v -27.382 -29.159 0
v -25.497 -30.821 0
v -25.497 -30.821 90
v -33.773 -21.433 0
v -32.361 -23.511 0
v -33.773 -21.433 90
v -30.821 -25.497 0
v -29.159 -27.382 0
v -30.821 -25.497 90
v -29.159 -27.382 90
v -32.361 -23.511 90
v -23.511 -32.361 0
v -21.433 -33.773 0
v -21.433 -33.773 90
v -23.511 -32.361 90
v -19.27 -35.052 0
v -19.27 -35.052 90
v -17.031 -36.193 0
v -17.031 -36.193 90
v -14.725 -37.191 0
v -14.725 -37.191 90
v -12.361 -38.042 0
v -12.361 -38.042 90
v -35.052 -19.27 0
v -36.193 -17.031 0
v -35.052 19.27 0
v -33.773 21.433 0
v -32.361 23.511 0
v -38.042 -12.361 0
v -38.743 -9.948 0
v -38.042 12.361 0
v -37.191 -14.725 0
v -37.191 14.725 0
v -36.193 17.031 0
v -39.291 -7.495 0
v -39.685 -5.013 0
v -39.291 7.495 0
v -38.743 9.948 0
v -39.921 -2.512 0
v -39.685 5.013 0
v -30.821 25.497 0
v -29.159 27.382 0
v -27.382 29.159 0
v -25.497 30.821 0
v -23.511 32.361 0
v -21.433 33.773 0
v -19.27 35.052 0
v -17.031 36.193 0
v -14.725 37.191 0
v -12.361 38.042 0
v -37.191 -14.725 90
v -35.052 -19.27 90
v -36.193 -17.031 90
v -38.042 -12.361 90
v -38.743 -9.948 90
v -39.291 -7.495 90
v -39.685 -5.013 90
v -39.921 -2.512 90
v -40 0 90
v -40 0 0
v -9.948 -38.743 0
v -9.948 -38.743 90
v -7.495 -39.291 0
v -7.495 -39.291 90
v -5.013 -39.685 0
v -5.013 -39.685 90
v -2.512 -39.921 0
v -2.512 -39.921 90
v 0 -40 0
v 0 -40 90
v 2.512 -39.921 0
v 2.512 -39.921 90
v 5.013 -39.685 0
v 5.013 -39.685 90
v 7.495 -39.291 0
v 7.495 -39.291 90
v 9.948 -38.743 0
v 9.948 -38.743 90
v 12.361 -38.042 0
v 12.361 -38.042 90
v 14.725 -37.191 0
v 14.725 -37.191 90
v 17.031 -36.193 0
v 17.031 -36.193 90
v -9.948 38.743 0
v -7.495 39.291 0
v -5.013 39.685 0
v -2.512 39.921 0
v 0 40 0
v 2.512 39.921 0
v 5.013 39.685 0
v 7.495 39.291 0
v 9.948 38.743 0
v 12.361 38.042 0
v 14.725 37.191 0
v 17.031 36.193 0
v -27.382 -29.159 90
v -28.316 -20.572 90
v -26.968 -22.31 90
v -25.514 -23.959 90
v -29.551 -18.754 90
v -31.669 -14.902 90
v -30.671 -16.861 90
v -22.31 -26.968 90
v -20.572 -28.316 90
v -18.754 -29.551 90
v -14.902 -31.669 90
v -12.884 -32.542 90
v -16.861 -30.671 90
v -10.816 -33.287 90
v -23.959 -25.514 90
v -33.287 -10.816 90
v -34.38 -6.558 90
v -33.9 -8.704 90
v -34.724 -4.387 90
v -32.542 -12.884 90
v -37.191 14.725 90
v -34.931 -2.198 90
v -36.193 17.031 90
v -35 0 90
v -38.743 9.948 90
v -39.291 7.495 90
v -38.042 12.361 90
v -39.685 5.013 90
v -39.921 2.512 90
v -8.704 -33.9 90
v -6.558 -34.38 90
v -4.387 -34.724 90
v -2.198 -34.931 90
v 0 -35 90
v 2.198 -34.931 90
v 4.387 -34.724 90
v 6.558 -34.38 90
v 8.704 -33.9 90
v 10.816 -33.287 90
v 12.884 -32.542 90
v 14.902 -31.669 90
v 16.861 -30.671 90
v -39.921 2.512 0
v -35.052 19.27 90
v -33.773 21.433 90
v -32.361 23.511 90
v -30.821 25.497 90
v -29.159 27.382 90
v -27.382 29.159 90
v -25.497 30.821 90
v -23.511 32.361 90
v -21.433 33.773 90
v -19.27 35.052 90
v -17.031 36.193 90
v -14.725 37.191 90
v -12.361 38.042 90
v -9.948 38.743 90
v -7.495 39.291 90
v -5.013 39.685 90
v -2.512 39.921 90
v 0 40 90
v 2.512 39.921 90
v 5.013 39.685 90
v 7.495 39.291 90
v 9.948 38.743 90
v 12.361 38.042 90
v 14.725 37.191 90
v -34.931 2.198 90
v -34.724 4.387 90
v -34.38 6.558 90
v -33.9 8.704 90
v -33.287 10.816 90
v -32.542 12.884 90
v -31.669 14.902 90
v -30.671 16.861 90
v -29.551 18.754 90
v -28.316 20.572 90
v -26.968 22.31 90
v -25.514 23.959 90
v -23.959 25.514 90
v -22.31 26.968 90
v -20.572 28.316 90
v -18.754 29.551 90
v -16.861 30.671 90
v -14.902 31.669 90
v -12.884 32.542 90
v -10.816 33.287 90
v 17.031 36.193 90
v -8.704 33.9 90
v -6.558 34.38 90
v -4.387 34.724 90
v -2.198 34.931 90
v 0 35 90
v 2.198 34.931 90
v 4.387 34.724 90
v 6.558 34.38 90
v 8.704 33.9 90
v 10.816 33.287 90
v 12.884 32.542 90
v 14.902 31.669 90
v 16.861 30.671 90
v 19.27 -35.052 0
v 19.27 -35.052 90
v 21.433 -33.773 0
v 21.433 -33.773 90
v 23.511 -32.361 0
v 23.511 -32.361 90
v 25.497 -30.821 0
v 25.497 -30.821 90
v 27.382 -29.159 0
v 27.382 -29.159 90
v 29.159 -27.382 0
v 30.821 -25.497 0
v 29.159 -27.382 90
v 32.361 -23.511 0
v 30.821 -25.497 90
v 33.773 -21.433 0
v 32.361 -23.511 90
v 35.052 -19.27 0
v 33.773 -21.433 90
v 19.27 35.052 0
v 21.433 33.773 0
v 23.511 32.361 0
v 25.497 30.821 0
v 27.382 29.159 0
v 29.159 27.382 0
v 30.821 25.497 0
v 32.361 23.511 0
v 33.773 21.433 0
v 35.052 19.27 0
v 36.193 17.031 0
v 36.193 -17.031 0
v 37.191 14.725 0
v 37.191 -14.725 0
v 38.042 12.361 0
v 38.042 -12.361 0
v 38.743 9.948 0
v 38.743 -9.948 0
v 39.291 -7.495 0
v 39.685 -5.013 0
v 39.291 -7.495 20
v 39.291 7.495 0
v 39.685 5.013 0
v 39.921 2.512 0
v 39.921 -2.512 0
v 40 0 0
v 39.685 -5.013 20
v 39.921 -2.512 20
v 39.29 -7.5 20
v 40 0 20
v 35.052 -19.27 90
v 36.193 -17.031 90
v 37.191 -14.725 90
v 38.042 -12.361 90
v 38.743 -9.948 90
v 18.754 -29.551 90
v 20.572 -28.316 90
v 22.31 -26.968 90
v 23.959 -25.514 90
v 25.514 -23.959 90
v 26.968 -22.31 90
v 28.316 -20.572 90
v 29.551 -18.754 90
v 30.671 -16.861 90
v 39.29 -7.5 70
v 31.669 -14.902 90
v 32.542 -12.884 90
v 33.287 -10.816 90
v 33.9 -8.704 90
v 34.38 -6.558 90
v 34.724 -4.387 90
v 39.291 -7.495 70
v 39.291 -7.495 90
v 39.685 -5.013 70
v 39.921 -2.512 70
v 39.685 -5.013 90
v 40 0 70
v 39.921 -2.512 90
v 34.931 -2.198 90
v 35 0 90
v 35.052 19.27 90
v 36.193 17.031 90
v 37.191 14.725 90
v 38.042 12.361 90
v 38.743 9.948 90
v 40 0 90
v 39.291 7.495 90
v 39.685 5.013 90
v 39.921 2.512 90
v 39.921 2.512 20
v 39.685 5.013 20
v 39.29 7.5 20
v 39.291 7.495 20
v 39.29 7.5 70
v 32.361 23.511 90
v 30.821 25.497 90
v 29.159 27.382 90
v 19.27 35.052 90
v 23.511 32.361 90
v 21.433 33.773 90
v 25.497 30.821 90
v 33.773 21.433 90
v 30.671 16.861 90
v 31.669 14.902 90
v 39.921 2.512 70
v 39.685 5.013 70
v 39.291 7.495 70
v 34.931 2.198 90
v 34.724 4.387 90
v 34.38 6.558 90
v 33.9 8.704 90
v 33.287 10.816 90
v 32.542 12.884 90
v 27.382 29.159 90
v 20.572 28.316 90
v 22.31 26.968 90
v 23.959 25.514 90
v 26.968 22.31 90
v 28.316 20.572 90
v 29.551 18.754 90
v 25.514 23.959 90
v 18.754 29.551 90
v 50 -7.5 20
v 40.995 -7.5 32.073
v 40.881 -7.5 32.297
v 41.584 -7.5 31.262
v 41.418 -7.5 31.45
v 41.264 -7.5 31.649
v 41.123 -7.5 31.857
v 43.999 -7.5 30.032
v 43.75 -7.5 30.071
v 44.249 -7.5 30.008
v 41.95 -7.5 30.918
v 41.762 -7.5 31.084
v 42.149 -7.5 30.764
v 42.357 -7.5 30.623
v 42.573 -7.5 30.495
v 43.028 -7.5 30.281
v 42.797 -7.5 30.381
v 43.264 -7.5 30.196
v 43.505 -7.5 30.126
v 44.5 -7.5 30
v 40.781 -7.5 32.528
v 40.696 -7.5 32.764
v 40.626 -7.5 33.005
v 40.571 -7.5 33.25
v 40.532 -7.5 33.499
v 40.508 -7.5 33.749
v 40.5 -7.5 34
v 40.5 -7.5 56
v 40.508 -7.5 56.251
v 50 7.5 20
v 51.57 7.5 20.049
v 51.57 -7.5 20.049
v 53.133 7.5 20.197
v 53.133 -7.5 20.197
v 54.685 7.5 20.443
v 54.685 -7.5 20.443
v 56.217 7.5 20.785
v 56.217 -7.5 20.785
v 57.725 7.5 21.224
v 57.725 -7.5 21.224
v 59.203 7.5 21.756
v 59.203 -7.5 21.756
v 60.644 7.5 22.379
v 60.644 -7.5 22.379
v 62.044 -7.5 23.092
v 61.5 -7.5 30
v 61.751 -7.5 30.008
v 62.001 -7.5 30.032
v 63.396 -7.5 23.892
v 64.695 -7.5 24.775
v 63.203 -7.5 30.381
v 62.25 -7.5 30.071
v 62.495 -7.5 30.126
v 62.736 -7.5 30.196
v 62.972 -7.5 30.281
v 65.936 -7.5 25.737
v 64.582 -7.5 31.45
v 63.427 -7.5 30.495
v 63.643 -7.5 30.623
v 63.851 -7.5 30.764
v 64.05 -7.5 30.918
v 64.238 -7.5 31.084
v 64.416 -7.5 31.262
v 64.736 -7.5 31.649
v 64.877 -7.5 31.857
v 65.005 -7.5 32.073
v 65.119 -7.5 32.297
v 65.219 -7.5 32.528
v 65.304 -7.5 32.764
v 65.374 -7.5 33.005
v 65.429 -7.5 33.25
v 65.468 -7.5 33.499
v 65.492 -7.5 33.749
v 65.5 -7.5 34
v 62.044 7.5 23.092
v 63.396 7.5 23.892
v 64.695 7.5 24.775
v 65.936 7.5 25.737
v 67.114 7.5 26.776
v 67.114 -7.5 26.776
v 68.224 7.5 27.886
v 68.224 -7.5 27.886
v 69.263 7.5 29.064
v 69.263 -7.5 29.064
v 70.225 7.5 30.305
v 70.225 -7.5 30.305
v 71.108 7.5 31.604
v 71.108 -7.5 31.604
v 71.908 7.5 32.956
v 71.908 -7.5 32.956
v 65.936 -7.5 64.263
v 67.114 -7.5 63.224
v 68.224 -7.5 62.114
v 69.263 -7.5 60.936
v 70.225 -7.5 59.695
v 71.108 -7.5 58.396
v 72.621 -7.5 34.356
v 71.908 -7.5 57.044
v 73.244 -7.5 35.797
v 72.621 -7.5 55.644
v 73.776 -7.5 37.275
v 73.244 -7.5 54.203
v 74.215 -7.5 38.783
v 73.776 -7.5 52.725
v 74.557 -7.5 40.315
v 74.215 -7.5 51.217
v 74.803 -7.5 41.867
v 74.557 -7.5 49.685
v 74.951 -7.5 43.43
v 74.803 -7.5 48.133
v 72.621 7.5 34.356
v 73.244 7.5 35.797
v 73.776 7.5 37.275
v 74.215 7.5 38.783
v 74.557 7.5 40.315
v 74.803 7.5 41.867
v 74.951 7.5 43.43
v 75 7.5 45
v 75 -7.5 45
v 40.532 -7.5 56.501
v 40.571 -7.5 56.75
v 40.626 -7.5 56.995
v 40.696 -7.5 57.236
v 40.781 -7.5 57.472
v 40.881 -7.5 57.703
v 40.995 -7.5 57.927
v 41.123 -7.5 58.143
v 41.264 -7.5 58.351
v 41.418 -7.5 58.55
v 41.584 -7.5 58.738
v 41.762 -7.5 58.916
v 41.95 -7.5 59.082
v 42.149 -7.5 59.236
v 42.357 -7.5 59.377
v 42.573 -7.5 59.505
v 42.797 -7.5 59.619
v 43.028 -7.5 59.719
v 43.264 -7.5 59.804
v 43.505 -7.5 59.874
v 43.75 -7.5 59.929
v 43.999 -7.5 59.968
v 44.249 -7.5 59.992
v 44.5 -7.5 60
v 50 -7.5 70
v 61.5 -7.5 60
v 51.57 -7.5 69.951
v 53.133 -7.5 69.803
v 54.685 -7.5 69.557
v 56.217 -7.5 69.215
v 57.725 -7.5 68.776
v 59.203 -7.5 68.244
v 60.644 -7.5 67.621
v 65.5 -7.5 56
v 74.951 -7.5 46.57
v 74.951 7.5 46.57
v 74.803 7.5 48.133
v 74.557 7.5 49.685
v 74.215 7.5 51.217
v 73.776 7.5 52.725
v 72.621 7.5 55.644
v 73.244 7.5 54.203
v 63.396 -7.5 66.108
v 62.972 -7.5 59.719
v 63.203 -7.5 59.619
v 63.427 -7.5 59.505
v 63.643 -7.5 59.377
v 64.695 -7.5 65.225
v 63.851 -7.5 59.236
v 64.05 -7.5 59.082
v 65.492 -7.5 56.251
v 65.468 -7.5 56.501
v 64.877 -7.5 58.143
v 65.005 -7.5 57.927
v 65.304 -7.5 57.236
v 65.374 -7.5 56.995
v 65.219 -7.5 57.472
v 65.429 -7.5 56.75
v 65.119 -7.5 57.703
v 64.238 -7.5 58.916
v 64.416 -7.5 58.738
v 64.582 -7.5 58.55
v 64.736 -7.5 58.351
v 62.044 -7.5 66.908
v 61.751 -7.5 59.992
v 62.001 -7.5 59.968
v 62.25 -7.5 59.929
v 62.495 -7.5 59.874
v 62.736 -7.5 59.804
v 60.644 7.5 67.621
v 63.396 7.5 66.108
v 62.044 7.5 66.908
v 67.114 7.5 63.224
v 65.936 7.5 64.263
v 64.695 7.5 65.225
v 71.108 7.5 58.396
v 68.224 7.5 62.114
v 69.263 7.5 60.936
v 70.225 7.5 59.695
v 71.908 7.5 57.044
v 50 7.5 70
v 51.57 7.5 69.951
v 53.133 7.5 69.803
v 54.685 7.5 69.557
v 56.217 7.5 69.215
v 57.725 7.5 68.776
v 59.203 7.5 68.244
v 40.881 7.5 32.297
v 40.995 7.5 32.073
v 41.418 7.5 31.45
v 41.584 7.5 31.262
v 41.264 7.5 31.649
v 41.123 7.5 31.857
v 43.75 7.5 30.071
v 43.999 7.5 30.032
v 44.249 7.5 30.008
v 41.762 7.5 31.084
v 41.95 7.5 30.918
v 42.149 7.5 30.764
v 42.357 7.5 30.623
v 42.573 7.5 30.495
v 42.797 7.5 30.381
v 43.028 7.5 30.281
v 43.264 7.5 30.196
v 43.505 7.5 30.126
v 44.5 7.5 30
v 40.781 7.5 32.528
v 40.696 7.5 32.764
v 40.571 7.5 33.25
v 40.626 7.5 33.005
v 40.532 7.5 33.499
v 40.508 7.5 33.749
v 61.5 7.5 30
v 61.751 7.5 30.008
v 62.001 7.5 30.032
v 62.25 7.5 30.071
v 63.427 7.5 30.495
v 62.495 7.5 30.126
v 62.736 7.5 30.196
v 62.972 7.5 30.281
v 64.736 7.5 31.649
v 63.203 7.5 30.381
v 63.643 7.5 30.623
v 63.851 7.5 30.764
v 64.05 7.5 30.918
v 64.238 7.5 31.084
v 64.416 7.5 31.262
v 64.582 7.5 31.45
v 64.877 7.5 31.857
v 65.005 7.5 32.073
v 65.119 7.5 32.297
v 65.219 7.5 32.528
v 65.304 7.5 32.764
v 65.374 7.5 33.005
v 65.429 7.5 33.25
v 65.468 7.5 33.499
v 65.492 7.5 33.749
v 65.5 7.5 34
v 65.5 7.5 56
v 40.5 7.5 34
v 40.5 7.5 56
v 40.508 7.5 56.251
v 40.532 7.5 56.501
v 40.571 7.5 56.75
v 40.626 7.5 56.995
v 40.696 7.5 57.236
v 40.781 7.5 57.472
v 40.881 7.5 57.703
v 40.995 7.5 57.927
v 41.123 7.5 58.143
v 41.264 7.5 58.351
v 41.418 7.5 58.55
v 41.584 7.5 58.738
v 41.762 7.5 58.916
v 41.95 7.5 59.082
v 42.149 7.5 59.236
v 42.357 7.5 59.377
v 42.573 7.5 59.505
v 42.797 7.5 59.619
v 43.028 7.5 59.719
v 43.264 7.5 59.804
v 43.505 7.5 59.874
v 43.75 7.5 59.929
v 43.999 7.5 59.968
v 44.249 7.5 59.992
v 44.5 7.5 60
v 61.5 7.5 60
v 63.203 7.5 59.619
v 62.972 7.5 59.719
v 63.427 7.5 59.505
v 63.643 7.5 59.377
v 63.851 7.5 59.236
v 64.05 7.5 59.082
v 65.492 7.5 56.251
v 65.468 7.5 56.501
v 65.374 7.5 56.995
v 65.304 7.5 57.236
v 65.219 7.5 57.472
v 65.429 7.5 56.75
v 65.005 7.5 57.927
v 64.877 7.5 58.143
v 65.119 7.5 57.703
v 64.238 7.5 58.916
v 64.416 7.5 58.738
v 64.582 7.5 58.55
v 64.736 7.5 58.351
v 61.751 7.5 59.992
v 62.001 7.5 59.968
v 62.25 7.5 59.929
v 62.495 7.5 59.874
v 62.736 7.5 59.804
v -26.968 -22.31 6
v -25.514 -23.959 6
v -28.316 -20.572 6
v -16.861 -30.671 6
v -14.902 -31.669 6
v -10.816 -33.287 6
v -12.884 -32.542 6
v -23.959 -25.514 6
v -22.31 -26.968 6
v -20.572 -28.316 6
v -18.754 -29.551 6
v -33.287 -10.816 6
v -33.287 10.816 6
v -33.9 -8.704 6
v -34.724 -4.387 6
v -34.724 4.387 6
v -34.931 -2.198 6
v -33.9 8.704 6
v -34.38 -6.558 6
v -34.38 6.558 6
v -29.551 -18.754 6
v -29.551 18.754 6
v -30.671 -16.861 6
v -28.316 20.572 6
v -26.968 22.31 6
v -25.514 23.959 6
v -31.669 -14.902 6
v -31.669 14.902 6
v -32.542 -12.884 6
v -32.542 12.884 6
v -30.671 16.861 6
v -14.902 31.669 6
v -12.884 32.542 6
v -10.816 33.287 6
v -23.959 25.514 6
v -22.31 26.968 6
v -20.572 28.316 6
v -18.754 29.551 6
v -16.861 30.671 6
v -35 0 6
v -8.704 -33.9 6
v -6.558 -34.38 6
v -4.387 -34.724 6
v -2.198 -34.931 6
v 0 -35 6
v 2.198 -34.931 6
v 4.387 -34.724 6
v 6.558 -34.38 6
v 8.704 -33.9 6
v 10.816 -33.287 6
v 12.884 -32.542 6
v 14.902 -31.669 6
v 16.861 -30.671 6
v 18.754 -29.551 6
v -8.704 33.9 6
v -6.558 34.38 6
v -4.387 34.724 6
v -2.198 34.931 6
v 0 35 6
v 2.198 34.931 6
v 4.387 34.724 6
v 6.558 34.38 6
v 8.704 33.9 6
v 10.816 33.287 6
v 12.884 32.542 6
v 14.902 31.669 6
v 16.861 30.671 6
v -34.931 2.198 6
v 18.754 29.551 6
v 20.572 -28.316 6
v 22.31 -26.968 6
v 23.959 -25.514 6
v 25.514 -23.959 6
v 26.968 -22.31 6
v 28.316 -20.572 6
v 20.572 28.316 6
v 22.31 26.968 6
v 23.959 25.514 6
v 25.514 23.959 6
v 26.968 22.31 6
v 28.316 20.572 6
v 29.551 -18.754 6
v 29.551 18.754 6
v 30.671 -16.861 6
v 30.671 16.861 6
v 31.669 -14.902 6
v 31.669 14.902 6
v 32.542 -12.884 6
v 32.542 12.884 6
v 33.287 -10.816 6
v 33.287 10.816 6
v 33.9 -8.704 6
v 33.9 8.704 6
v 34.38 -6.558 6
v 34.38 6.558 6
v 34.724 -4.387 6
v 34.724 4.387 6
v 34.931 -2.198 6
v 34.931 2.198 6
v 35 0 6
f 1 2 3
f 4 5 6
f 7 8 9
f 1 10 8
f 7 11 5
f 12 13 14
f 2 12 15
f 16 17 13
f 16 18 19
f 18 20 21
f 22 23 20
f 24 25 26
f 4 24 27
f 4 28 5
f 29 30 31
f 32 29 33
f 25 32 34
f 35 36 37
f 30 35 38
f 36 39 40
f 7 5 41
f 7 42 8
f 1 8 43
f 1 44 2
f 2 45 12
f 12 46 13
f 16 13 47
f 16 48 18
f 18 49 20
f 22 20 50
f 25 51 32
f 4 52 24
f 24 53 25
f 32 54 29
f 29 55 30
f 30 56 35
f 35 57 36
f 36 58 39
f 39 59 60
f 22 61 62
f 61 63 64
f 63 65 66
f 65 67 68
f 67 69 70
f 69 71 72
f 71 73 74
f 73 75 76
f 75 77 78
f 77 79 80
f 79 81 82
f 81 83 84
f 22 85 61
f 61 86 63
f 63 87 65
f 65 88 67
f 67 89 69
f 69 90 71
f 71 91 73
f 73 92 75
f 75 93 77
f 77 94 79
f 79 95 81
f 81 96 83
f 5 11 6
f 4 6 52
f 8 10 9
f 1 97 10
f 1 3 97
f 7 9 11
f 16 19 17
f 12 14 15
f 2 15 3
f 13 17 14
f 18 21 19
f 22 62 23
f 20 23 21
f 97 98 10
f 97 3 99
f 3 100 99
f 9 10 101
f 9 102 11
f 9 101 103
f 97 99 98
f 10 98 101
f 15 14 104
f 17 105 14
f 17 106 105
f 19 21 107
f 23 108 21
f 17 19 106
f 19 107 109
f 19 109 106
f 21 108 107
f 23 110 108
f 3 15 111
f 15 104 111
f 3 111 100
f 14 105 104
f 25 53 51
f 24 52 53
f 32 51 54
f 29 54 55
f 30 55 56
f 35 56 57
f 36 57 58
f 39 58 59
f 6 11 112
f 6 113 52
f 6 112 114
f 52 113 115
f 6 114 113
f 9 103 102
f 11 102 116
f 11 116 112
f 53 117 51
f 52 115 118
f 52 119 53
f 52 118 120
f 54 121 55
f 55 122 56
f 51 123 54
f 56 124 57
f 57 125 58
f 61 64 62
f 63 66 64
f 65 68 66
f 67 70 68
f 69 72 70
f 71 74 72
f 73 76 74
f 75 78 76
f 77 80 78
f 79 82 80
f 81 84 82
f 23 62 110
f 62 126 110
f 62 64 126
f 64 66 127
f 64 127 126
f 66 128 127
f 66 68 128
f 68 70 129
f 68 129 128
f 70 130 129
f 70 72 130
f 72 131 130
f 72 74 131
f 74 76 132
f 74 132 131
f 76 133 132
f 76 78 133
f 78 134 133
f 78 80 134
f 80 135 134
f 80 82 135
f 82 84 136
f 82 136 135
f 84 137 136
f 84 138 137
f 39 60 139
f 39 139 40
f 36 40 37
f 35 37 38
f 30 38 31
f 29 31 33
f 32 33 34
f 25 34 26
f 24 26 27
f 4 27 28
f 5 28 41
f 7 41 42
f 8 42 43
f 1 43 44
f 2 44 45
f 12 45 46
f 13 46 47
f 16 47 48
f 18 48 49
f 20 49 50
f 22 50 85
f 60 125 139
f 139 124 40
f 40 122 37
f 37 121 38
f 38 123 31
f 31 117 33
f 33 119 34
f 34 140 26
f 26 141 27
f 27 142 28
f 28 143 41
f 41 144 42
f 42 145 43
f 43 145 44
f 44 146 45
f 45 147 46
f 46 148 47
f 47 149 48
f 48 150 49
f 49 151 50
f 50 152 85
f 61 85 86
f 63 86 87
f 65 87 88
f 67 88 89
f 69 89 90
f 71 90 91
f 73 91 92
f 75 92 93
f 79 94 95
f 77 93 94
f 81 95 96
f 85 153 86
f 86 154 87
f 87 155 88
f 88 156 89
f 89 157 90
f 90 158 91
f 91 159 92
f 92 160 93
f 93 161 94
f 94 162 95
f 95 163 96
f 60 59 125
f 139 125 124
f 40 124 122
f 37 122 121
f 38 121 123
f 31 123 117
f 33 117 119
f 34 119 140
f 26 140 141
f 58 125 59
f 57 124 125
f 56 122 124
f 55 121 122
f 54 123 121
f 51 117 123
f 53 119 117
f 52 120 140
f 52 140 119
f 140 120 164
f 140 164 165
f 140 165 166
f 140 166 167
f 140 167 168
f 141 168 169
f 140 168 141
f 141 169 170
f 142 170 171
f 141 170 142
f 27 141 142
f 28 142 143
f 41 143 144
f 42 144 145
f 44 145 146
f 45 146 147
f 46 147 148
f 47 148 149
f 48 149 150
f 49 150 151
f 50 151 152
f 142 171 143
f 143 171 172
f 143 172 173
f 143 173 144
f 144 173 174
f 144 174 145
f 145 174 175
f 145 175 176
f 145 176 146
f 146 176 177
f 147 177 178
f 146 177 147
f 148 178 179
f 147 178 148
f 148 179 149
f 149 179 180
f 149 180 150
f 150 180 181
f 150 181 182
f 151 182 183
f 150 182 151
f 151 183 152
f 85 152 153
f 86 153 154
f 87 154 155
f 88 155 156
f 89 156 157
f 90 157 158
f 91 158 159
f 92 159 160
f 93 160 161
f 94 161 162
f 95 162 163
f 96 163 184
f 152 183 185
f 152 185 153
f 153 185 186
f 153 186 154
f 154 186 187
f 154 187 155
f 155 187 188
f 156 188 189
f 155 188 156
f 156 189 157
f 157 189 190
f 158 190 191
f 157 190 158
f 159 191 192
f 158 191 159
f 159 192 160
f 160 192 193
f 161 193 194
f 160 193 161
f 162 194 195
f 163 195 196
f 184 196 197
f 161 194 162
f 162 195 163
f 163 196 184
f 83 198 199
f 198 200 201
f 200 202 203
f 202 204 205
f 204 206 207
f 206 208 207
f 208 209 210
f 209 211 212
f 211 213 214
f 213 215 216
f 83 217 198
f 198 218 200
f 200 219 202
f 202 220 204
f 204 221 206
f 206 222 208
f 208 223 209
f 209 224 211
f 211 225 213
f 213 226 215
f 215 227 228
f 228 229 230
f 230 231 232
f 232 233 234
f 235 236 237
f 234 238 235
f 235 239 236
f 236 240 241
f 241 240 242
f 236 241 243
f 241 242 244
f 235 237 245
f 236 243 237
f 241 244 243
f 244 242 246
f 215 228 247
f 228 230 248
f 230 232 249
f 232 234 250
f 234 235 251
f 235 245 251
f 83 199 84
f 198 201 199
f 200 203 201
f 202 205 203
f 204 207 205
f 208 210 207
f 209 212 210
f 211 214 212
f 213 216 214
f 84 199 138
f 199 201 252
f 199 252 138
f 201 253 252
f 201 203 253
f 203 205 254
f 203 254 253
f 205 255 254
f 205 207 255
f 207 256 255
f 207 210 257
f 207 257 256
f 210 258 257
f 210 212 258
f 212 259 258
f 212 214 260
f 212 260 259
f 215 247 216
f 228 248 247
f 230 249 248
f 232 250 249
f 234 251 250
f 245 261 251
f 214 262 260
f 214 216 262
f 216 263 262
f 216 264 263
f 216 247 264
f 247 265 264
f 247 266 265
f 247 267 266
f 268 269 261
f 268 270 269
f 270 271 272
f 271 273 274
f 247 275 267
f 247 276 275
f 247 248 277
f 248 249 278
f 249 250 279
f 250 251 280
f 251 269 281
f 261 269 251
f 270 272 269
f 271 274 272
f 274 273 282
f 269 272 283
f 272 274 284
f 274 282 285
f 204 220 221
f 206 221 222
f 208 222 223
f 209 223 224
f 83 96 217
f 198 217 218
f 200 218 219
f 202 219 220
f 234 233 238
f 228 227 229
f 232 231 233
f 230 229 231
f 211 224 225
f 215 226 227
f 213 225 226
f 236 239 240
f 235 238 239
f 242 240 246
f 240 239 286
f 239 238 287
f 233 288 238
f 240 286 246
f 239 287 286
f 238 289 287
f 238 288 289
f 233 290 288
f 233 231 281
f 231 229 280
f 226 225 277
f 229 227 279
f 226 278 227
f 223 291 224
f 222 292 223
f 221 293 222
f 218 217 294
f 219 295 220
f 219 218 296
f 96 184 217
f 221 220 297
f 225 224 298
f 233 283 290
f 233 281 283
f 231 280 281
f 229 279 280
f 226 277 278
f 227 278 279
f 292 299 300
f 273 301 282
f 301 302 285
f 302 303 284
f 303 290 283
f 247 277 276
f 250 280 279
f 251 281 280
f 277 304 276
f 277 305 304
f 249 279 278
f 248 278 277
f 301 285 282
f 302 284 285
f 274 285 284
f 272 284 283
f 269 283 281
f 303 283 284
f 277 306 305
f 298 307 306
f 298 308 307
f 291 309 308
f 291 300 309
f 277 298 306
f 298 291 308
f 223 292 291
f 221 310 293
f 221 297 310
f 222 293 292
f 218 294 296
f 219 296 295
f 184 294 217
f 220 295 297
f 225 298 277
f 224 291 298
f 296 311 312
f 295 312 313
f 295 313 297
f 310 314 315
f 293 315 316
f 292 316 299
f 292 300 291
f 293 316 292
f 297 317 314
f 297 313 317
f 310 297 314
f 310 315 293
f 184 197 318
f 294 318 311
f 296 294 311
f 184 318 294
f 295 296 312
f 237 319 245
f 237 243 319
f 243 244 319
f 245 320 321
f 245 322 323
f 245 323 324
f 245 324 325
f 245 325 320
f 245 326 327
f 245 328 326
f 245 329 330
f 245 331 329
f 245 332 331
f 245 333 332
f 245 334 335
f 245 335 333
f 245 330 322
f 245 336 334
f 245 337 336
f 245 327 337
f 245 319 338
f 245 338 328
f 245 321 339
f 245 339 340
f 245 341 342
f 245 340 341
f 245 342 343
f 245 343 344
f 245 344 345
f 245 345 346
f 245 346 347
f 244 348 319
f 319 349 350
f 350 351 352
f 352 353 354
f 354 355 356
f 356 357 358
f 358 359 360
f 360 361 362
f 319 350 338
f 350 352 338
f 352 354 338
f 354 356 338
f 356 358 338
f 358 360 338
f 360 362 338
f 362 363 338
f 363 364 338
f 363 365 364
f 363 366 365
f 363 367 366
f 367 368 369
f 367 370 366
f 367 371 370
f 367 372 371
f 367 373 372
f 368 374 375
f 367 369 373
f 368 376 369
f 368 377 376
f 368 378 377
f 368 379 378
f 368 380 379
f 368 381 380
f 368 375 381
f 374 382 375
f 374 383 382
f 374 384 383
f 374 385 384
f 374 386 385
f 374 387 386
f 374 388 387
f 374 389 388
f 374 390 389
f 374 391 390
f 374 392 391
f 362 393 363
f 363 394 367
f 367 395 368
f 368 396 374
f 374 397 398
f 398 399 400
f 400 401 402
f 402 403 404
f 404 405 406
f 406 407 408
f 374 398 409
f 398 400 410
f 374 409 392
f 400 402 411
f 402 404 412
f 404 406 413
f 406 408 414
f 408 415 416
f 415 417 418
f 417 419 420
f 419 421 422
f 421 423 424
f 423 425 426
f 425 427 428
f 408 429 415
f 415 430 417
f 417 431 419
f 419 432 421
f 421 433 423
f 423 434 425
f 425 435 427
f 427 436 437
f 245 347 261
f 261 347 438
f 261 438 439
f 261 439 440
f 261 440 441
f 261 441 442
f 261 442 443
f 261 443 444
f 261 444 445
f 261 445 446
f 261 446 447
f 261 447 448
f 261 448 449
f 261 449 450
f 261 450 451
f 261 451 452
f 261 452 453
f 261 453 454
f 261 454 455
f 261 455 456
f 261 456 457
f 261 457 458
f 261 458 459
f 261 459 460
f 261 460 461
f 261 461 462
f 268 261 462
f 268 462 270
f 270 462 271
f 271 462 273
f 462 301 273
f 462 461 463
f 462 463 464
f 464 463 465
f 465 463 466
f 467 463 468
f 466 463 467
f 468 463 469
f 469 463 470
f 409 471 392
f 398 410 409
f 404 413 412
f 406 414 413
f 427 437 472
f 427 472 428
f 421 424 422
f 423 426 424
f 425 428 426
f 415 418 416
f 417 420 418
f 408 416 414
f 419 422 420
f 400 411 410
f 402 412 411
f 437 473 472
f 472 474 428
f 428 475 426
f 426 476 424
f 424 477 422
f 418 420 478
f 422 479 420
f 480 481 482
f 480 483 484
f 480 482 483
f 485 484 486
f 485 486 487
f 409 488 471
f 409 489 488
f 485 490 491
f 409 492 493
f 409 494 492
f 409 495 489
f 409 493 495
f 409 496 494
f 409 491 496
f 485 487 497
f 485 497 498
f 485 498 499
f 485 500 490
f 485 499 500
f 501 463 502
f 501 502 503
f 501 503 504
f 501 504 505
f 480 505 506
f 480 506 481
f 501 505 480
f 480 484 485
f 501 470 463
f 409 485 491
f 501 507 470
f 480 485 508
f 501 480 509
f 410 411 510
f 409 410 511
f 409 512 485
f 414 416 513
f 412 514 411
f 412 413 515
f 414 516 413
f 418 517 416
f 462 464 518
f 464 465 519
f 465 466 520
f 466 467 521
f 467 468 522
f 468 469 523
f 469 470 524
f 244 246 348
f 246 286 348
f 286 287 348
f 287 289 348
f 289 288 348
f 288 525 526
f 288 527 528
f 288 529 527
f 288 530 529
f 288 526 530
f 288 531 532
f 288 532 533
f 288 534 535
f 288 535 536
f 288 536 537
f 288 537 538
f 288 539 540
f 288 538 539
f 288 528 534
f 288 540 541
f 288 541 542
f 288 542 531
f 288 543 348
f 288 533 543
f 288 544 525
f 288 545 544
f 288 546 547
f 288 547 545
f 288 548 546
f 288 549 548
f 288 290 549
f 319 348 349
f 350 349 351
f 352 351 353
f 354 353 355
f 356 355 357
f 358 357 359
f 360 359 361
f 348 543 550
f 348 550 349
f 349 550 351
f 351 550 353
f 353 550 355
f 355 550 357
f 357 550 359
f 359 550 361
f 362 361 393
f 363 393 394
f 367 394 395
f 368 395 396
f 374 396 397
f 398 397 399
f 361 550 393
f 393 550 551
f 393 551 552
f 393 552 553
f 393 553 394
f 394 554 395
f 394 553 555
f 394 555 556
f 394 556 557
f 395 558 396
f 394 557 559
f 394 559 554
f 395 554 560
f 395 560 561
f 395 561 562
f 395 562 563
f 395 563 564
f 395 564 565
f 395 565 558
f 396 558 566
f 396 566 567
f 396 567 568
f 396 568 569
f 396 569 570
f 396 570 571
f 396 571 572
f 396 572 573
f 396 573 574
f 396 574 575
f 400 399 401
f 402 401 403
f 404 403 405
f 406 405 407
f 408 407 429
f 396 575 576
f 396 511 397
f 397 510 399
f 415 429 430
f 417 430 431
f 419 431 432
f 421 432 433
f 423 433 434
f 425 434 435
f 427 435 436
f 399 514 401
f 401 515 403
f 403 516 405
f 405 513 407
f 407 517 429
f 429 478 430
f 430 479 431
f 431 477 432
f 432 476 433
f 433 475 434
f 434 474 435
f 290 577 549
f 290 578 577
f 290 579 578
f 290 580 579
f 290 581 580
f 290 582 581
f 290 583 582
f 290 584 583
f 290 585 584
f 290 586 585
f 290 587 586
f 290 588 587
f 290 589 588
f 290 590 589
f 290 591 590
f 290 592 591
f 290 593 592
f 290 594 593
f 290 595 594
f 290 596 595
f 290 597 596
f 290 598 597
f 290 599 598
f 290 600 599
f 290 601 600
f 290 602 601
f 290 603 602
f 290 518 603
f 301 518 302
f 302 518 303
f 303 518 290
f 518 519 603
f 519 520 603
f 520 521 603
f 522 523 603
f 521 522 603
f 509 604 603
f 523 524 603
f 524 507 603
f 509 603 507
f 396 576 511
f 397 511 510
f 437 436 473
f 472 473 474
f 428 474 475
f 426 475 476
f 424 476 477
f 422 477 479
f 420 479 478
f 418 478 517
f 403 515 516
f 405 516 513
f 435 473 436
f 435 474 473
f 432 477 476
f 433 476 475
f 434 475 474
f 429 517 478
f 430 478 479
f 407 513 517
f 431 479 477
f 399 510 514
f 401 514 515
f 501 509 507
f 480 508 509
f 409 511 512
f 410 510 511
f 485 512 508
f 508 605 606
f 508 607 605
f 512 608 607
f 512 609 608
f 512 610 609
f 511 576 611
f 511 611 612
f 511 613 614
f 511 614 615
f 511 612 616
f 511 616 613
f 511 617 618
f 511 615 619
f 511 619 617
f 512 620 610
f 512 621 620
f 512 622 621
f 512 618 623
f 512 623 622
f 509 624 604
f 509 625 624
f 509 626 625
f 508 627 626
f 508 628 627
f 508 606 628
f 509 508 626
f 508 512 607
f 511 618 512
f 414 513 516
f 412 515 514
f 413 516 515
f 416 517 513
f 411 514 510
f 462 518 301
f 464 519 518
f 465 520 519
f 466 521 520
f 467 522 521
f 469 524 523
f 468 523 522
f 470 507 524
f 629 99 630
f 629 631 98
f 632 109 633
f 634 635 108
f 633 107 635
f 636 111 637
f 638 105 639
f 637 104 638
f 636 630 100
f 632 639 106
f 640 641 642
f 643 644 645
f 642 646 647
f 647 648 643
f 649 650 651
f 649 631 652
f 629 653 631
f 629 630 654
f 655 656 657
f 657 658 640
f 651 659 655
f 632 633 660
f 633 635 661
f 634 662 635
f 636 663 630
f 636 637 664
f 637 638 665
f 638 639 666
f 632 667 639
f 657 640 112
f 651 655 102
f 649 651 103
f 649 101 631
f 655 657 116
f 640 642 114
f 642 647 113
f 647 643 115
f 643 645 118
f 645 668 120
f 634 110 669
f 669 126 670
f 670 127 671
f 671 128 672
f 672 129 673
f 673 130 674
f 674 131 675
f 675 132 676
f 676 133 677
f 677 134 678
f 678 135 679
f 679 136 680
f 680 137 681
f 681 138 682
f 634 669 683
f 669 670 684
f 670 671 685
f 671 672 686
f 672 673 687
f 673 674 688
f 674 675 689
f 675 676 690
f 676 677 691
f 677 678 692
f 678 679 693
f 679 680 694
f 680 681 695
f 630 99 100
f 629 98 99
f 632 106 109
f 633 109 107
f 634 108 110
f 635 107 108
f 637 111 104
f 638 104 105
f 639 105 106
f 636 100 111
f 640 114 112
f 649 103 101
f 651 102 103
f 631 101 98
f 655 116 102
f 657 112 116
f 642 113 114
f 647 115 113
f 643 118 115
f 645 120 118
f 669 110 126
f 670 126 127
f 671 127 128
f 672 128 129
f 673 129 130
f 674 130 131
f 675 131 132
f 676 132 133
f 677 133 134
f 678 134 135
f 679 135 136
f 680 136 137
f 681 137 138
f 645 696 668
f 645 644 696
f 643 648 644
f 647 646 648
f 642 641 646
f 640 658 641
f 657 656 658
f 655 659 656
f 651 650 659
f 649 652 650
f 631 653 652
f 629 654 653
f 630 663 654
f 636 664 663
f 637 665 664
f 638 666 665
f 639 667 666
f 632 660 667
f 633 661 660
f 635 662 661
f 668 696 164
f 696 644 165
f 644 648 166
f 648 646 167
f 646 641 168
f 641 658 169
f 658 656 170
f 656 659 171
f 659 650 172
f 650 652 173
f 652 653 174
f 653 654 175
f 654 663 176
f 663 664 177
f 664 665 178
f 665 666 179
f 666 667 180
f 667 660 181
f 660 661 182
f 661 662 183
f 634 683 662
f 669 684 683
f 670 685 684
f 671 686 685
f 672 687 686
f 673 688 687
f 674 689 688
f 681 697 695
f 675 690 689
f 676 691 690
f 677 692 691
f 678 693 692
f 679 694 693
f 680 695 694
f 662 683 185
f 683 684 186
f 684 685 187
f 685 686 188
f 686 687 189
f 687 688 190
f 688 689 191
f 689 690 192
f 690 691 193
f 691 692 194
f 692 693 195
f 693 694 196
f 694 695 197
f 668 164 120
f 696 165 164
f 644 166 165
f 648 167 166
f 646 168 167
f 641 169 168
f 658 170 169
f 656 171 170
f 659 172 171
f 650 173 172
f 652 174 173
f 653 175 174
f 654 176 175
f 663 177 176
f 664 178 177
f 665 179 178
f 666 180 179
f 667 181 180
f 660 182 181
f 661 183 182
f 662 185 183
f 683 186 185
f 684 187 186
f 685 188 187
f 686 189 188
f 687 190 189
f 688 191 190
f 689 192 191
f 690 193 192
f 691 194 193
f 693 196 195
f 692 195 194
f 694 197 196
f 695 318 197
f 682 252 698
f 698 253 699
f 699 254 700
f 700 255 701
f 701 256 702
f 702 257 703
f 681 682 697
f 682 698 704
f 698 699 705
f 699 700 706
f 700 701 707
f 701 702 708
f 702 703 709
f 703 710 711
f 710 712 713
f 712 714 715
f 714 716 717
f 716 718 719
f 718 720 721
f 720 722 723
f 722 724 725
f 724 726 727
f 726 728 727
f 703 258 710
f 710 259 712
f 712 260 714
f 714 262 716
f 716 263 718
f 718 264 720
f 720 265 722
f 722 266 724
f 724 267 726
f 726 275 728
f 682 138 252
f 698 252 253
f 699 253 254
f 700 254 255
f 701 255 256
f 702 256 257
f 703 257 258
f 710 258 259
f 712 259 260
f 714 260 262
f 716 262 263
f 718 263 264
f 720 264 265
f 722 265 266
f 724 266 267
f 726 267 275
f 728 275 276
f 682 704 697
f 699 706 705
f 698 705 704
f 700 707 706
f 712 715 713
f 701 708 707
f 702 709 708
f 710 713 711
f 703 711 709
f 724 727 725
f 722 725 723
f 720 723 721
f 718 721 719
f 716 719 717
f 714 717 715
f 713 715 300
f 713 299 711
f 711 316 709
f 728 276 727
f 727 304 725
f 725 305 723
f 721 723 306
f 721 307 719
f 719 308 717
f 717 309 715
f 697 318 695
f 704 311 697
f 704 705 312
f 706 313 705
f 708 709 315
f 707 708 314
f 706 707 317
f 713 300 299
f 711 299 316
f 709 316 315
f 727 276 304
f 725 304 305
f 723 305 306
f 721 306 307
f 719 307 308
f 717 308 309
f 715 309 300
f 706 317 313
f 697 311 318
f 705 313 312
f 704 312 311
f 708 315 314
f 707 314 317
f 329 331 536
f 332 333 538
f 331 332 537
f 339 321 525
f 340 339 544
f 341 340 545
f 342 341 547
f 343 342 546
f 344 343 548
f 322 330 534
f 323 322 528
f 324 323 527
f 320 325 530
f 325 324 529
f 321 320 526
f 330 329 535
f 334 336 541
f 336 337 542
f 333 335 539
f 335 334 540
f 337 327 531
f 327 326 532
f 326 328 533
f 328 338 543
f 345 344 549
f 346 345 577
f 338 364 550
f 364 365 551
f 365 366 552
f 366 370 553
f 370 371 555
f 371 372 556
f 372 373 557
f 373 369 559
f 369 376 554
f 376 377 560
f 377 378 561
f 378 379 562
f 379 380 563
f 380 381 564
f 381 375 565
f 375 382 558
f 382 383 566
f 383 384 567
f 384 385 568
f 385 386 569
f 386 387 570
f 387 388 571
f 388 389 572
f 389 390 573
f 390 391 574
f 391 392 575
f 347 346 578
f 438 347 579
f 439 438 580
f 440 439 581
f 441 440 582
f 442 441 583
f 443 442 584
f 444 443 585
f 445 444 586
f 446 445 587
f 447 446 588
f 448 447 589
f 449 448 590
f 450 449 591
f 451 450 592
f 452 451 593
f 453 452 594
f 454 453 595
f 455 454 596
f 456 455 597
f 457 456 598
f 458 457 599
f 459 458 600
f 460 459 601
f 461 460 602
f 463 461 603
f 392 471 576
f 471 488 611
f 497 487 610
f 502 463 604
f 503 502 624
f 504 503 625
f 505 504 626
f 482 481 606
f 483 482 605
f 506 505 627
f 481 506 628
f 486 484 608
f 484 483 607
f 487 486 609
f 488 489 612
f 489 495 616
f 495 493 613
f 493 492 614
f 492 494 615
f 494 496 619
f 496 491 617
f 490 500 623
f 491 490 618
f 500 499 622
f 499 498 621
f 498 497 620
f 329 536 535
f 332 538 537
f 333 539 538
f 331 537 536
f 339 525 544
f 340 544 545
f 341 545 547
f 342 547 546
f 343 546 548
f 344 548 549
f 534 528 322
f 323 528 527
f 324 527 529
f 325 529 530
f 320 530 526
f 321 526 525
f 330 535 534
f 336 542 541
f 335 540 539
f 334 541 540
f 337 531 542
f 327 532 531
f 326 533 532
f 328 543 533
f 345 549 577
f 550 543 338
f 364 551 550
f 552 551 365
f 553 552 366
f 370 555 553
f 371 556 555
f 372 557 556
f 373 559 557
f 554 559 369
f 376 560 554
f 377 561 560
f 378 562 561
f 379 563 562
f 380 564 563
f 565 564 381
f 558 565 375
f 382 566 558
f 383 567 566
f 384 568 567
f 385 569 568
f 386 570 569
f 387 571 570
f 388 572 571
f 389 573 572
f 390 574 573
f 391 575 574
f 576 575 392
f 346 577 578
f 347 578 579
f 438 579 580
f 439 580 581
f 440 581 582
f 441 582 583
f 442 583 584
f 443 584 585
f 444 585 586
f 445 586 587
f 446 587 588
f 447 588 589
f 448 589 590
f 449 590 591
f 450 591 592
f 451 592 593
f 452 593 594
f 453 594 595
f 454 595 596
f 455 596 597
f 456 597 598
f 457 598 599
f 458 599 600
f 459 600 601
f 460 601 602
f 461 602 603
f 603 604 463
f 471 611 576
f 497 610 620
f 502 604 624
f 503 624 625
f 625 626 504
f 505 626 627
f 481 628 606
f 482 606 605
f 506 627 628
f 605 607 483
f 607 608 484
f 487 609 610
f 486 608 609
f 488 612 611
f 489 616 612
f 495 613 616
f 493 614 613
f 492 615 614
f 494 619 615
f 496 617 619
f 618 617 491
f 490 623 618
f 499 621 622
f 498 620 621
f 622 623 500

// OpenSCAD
$fn = 100;

difference() {
    // 1. 本体の外筒と取手の外形を結合
    union() {
        // マグ本体の外筒 (外径80mm = 半径40mm, 高さ90mm)
        cylinder(h=90, r=40);

        // 取手のソリッド外形 (高さ50mm, 厚み15mm)
        // 高さ方向の中央 (Z=45) に配置、+X軸方向に伸ばす
        translate([0, 0, 45])
        rotate([90, 0, 0])
        linear_extrude(height=15, center=true)
        hull() {
            // 本体にしっかり食い込ませるため X=20 から配置
            translate([20, -25]) square([30, 50]); 
            // 外側は半円 (D字形状、右端は X=75)
            translate([50, 0]) circle(r=25);        
        }
    }

    // 2. 内側の中空化 (内径70mm = 半径35mm, 底面の厚み6mm)
    // Zファイティングを防ぐため、上方向(Z)は十分に長く突き抜けさせる
    translate([0, 0, 6])
        cylinder(h=100, r=35);

    // 3. 取手の内側空間のくり抜き (高さ30mm × 幅25mm、持ちやすい角丸形状)
    // 確実に貫通させるため、厚み(height)は取手より厚い20mmに設定
    translate([0, 0, 45])
    rotate([90, 0, 0])
    linear_extrude(height=20, center=true)
    hull() {
        // 幅 25mm (X: 40.5mm から 65.5mm), 高さ 30mm (Y: -15mm から 15mm)
        // 角の丸み半径 r=4mm
        translate([44.5, -11]) circle(r=4);
        translate([61.5, -11]) circle(r=4);
        translate([61.5, 11]) circle(r=4);
        translate([44.5, 11]) circle(r=4);
    }
}
